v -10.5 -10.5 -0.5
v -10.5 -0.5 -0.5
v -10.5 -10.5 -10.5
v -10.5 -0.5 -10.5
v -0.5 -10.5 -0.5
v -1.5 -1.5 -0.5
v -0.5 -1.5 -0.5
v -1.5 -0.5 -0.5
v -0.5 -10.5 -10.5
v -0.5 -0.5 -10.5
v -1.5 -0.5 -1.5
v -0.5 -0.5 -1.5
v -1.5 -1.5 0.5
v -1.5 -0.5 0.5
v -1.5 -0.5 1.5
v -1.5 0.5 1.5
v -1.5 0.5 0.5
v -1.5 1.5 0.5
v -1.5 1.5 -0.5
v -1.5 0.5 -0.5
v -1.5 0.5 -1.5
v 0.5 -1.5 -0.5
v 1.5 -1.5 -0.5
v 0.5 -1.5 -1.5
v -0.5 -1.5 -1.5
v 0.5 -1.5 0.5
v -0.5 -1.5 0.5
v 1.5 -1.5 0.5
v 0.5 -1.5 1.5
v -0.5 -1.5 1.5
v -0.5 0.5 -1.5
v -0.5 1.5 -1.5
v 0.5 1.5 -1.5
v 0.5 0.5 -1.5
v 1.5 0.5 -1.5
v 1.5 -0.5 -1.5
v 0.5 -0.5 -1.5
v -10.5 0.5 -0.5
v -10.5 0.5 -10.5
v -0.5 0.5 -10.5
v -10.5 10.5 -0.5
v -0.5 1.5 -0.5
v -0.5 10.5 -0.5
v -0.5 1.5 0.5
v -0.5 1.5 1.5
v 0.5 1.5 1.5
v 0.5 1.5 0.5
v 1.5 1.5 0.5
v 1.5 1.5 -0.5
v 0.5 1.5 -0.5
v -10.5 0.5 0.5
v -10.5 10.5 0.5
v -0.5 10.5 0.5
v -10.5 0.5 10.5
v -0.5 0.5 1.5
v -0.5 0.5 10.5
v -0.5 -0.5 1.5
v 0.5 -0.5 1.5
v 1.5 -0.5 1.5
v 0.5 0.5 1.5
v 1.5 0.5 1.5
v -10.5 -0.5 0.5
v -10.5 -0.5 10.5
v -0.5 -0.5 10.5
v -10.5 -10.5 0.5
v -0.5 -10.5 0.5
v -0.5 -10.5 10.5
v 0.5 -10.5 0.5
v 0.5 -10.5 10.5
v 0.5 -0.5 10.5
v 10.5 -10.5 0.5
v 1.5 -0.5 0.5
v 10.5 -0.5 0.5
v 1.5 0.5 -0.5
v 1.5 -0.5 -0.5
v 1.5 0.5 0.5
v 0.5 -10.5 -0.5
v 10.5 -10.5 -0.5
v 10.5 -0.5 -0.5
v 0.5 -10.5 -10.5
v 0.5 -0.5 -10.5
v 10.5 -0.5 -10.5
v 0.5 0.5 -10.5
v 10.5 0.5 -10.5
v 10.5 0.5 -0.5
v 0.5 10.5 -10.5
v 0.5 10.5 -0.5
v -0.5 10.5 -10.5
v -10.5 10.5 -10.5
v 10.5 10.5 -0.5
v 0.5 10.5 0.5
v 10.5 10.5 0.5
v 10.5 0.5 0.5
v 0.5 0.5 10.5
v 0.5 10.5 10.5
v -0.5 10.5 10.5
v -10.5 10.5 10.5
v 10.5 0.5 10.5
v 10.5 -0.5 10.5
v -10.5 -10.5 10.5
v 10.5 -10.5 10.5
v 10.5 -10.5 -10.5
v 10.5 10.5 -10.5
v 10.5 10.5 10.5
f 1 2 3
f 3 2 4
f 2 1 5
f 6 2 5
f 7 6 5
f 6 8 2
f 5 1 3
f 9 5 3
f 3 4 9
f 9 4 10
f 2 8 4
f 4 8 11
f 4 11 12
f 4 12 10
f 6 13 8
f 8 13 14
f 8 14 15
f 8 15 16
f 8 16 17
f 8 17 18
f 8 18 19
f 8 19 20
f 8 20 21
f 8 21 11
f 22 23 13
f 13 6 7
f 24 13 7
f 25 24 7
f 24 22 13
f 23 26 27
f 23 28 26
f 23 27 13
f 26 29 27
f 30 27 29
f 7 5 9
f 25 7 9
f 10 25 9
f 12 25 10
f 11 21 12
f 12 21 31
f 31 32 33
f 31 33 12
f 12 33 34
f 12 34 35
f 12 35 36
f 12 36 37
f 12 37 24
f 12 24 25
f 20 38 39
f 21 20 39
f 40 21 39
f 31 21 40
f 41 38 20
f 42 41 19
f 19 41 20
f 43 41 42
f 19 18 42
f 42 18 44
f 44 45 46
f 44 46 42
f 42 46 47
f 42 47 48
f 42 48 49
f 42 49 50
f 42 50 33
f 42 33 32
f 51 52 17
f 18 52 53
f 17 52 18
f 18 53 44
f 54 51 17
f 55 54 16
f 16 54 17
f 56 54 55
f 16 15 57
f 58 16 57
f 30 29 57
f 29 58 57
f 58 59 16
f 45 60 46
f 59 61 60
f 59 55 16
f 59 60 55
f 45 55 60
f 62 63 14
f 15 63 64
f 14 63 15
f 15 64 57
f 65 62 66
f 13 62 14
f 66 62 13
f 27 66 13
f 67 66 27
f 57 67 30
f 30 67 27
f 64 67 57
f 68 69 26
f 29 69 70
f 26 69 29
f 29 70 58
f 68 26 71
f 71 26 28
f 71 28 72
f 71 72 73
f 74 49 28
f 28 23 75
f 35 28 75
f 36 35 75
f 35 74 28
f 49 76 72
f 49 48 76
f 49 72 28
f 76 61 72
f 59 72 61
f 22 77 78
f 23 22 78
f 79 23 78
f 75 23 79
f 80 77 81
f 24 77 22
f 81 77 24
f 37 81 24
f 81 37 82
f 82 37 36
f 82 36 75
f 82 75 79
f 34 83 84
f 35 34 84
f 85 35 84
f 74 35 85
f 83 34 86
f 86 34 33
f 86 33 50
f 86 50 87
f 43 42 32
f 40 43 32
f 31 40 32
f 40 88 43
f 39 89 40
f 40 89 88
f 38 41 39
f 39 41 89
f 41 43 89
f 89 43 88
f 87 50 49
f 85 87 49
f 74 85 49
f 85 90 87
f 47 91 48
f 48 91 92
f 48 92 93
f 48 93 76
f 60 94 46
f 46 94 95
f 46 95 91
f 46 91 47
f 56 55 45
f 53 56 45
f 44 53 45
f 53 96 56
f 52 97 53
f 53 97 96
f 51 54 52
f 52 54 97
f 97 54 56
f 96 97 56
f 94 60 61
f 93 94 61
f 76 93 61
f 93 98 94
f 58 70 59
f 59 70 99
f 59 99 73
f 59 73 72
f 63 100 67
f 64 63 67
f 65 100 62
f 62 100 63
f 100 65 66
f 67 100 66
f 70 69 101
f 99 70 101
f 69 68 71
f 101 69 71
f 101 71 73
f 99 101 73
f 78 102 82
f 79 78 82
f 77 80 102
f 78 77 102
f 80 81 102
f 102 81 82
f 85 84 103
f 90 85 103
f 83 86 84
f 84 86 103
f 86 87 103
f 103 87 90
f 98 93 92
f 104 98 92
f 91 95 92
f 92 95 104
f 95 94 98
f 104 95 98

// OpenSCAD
union() { 
	cube (size = 3, center = true);
	for (i=[0:90:270]) {
		rotate (a = [0, 0, i]) translate ([.5, .5, .5]) cube (size = 10) ;
		rotate (a = [0, 180, i]) translate ([.5, .5, .5]) cube (size = 10) ;
	}
}
